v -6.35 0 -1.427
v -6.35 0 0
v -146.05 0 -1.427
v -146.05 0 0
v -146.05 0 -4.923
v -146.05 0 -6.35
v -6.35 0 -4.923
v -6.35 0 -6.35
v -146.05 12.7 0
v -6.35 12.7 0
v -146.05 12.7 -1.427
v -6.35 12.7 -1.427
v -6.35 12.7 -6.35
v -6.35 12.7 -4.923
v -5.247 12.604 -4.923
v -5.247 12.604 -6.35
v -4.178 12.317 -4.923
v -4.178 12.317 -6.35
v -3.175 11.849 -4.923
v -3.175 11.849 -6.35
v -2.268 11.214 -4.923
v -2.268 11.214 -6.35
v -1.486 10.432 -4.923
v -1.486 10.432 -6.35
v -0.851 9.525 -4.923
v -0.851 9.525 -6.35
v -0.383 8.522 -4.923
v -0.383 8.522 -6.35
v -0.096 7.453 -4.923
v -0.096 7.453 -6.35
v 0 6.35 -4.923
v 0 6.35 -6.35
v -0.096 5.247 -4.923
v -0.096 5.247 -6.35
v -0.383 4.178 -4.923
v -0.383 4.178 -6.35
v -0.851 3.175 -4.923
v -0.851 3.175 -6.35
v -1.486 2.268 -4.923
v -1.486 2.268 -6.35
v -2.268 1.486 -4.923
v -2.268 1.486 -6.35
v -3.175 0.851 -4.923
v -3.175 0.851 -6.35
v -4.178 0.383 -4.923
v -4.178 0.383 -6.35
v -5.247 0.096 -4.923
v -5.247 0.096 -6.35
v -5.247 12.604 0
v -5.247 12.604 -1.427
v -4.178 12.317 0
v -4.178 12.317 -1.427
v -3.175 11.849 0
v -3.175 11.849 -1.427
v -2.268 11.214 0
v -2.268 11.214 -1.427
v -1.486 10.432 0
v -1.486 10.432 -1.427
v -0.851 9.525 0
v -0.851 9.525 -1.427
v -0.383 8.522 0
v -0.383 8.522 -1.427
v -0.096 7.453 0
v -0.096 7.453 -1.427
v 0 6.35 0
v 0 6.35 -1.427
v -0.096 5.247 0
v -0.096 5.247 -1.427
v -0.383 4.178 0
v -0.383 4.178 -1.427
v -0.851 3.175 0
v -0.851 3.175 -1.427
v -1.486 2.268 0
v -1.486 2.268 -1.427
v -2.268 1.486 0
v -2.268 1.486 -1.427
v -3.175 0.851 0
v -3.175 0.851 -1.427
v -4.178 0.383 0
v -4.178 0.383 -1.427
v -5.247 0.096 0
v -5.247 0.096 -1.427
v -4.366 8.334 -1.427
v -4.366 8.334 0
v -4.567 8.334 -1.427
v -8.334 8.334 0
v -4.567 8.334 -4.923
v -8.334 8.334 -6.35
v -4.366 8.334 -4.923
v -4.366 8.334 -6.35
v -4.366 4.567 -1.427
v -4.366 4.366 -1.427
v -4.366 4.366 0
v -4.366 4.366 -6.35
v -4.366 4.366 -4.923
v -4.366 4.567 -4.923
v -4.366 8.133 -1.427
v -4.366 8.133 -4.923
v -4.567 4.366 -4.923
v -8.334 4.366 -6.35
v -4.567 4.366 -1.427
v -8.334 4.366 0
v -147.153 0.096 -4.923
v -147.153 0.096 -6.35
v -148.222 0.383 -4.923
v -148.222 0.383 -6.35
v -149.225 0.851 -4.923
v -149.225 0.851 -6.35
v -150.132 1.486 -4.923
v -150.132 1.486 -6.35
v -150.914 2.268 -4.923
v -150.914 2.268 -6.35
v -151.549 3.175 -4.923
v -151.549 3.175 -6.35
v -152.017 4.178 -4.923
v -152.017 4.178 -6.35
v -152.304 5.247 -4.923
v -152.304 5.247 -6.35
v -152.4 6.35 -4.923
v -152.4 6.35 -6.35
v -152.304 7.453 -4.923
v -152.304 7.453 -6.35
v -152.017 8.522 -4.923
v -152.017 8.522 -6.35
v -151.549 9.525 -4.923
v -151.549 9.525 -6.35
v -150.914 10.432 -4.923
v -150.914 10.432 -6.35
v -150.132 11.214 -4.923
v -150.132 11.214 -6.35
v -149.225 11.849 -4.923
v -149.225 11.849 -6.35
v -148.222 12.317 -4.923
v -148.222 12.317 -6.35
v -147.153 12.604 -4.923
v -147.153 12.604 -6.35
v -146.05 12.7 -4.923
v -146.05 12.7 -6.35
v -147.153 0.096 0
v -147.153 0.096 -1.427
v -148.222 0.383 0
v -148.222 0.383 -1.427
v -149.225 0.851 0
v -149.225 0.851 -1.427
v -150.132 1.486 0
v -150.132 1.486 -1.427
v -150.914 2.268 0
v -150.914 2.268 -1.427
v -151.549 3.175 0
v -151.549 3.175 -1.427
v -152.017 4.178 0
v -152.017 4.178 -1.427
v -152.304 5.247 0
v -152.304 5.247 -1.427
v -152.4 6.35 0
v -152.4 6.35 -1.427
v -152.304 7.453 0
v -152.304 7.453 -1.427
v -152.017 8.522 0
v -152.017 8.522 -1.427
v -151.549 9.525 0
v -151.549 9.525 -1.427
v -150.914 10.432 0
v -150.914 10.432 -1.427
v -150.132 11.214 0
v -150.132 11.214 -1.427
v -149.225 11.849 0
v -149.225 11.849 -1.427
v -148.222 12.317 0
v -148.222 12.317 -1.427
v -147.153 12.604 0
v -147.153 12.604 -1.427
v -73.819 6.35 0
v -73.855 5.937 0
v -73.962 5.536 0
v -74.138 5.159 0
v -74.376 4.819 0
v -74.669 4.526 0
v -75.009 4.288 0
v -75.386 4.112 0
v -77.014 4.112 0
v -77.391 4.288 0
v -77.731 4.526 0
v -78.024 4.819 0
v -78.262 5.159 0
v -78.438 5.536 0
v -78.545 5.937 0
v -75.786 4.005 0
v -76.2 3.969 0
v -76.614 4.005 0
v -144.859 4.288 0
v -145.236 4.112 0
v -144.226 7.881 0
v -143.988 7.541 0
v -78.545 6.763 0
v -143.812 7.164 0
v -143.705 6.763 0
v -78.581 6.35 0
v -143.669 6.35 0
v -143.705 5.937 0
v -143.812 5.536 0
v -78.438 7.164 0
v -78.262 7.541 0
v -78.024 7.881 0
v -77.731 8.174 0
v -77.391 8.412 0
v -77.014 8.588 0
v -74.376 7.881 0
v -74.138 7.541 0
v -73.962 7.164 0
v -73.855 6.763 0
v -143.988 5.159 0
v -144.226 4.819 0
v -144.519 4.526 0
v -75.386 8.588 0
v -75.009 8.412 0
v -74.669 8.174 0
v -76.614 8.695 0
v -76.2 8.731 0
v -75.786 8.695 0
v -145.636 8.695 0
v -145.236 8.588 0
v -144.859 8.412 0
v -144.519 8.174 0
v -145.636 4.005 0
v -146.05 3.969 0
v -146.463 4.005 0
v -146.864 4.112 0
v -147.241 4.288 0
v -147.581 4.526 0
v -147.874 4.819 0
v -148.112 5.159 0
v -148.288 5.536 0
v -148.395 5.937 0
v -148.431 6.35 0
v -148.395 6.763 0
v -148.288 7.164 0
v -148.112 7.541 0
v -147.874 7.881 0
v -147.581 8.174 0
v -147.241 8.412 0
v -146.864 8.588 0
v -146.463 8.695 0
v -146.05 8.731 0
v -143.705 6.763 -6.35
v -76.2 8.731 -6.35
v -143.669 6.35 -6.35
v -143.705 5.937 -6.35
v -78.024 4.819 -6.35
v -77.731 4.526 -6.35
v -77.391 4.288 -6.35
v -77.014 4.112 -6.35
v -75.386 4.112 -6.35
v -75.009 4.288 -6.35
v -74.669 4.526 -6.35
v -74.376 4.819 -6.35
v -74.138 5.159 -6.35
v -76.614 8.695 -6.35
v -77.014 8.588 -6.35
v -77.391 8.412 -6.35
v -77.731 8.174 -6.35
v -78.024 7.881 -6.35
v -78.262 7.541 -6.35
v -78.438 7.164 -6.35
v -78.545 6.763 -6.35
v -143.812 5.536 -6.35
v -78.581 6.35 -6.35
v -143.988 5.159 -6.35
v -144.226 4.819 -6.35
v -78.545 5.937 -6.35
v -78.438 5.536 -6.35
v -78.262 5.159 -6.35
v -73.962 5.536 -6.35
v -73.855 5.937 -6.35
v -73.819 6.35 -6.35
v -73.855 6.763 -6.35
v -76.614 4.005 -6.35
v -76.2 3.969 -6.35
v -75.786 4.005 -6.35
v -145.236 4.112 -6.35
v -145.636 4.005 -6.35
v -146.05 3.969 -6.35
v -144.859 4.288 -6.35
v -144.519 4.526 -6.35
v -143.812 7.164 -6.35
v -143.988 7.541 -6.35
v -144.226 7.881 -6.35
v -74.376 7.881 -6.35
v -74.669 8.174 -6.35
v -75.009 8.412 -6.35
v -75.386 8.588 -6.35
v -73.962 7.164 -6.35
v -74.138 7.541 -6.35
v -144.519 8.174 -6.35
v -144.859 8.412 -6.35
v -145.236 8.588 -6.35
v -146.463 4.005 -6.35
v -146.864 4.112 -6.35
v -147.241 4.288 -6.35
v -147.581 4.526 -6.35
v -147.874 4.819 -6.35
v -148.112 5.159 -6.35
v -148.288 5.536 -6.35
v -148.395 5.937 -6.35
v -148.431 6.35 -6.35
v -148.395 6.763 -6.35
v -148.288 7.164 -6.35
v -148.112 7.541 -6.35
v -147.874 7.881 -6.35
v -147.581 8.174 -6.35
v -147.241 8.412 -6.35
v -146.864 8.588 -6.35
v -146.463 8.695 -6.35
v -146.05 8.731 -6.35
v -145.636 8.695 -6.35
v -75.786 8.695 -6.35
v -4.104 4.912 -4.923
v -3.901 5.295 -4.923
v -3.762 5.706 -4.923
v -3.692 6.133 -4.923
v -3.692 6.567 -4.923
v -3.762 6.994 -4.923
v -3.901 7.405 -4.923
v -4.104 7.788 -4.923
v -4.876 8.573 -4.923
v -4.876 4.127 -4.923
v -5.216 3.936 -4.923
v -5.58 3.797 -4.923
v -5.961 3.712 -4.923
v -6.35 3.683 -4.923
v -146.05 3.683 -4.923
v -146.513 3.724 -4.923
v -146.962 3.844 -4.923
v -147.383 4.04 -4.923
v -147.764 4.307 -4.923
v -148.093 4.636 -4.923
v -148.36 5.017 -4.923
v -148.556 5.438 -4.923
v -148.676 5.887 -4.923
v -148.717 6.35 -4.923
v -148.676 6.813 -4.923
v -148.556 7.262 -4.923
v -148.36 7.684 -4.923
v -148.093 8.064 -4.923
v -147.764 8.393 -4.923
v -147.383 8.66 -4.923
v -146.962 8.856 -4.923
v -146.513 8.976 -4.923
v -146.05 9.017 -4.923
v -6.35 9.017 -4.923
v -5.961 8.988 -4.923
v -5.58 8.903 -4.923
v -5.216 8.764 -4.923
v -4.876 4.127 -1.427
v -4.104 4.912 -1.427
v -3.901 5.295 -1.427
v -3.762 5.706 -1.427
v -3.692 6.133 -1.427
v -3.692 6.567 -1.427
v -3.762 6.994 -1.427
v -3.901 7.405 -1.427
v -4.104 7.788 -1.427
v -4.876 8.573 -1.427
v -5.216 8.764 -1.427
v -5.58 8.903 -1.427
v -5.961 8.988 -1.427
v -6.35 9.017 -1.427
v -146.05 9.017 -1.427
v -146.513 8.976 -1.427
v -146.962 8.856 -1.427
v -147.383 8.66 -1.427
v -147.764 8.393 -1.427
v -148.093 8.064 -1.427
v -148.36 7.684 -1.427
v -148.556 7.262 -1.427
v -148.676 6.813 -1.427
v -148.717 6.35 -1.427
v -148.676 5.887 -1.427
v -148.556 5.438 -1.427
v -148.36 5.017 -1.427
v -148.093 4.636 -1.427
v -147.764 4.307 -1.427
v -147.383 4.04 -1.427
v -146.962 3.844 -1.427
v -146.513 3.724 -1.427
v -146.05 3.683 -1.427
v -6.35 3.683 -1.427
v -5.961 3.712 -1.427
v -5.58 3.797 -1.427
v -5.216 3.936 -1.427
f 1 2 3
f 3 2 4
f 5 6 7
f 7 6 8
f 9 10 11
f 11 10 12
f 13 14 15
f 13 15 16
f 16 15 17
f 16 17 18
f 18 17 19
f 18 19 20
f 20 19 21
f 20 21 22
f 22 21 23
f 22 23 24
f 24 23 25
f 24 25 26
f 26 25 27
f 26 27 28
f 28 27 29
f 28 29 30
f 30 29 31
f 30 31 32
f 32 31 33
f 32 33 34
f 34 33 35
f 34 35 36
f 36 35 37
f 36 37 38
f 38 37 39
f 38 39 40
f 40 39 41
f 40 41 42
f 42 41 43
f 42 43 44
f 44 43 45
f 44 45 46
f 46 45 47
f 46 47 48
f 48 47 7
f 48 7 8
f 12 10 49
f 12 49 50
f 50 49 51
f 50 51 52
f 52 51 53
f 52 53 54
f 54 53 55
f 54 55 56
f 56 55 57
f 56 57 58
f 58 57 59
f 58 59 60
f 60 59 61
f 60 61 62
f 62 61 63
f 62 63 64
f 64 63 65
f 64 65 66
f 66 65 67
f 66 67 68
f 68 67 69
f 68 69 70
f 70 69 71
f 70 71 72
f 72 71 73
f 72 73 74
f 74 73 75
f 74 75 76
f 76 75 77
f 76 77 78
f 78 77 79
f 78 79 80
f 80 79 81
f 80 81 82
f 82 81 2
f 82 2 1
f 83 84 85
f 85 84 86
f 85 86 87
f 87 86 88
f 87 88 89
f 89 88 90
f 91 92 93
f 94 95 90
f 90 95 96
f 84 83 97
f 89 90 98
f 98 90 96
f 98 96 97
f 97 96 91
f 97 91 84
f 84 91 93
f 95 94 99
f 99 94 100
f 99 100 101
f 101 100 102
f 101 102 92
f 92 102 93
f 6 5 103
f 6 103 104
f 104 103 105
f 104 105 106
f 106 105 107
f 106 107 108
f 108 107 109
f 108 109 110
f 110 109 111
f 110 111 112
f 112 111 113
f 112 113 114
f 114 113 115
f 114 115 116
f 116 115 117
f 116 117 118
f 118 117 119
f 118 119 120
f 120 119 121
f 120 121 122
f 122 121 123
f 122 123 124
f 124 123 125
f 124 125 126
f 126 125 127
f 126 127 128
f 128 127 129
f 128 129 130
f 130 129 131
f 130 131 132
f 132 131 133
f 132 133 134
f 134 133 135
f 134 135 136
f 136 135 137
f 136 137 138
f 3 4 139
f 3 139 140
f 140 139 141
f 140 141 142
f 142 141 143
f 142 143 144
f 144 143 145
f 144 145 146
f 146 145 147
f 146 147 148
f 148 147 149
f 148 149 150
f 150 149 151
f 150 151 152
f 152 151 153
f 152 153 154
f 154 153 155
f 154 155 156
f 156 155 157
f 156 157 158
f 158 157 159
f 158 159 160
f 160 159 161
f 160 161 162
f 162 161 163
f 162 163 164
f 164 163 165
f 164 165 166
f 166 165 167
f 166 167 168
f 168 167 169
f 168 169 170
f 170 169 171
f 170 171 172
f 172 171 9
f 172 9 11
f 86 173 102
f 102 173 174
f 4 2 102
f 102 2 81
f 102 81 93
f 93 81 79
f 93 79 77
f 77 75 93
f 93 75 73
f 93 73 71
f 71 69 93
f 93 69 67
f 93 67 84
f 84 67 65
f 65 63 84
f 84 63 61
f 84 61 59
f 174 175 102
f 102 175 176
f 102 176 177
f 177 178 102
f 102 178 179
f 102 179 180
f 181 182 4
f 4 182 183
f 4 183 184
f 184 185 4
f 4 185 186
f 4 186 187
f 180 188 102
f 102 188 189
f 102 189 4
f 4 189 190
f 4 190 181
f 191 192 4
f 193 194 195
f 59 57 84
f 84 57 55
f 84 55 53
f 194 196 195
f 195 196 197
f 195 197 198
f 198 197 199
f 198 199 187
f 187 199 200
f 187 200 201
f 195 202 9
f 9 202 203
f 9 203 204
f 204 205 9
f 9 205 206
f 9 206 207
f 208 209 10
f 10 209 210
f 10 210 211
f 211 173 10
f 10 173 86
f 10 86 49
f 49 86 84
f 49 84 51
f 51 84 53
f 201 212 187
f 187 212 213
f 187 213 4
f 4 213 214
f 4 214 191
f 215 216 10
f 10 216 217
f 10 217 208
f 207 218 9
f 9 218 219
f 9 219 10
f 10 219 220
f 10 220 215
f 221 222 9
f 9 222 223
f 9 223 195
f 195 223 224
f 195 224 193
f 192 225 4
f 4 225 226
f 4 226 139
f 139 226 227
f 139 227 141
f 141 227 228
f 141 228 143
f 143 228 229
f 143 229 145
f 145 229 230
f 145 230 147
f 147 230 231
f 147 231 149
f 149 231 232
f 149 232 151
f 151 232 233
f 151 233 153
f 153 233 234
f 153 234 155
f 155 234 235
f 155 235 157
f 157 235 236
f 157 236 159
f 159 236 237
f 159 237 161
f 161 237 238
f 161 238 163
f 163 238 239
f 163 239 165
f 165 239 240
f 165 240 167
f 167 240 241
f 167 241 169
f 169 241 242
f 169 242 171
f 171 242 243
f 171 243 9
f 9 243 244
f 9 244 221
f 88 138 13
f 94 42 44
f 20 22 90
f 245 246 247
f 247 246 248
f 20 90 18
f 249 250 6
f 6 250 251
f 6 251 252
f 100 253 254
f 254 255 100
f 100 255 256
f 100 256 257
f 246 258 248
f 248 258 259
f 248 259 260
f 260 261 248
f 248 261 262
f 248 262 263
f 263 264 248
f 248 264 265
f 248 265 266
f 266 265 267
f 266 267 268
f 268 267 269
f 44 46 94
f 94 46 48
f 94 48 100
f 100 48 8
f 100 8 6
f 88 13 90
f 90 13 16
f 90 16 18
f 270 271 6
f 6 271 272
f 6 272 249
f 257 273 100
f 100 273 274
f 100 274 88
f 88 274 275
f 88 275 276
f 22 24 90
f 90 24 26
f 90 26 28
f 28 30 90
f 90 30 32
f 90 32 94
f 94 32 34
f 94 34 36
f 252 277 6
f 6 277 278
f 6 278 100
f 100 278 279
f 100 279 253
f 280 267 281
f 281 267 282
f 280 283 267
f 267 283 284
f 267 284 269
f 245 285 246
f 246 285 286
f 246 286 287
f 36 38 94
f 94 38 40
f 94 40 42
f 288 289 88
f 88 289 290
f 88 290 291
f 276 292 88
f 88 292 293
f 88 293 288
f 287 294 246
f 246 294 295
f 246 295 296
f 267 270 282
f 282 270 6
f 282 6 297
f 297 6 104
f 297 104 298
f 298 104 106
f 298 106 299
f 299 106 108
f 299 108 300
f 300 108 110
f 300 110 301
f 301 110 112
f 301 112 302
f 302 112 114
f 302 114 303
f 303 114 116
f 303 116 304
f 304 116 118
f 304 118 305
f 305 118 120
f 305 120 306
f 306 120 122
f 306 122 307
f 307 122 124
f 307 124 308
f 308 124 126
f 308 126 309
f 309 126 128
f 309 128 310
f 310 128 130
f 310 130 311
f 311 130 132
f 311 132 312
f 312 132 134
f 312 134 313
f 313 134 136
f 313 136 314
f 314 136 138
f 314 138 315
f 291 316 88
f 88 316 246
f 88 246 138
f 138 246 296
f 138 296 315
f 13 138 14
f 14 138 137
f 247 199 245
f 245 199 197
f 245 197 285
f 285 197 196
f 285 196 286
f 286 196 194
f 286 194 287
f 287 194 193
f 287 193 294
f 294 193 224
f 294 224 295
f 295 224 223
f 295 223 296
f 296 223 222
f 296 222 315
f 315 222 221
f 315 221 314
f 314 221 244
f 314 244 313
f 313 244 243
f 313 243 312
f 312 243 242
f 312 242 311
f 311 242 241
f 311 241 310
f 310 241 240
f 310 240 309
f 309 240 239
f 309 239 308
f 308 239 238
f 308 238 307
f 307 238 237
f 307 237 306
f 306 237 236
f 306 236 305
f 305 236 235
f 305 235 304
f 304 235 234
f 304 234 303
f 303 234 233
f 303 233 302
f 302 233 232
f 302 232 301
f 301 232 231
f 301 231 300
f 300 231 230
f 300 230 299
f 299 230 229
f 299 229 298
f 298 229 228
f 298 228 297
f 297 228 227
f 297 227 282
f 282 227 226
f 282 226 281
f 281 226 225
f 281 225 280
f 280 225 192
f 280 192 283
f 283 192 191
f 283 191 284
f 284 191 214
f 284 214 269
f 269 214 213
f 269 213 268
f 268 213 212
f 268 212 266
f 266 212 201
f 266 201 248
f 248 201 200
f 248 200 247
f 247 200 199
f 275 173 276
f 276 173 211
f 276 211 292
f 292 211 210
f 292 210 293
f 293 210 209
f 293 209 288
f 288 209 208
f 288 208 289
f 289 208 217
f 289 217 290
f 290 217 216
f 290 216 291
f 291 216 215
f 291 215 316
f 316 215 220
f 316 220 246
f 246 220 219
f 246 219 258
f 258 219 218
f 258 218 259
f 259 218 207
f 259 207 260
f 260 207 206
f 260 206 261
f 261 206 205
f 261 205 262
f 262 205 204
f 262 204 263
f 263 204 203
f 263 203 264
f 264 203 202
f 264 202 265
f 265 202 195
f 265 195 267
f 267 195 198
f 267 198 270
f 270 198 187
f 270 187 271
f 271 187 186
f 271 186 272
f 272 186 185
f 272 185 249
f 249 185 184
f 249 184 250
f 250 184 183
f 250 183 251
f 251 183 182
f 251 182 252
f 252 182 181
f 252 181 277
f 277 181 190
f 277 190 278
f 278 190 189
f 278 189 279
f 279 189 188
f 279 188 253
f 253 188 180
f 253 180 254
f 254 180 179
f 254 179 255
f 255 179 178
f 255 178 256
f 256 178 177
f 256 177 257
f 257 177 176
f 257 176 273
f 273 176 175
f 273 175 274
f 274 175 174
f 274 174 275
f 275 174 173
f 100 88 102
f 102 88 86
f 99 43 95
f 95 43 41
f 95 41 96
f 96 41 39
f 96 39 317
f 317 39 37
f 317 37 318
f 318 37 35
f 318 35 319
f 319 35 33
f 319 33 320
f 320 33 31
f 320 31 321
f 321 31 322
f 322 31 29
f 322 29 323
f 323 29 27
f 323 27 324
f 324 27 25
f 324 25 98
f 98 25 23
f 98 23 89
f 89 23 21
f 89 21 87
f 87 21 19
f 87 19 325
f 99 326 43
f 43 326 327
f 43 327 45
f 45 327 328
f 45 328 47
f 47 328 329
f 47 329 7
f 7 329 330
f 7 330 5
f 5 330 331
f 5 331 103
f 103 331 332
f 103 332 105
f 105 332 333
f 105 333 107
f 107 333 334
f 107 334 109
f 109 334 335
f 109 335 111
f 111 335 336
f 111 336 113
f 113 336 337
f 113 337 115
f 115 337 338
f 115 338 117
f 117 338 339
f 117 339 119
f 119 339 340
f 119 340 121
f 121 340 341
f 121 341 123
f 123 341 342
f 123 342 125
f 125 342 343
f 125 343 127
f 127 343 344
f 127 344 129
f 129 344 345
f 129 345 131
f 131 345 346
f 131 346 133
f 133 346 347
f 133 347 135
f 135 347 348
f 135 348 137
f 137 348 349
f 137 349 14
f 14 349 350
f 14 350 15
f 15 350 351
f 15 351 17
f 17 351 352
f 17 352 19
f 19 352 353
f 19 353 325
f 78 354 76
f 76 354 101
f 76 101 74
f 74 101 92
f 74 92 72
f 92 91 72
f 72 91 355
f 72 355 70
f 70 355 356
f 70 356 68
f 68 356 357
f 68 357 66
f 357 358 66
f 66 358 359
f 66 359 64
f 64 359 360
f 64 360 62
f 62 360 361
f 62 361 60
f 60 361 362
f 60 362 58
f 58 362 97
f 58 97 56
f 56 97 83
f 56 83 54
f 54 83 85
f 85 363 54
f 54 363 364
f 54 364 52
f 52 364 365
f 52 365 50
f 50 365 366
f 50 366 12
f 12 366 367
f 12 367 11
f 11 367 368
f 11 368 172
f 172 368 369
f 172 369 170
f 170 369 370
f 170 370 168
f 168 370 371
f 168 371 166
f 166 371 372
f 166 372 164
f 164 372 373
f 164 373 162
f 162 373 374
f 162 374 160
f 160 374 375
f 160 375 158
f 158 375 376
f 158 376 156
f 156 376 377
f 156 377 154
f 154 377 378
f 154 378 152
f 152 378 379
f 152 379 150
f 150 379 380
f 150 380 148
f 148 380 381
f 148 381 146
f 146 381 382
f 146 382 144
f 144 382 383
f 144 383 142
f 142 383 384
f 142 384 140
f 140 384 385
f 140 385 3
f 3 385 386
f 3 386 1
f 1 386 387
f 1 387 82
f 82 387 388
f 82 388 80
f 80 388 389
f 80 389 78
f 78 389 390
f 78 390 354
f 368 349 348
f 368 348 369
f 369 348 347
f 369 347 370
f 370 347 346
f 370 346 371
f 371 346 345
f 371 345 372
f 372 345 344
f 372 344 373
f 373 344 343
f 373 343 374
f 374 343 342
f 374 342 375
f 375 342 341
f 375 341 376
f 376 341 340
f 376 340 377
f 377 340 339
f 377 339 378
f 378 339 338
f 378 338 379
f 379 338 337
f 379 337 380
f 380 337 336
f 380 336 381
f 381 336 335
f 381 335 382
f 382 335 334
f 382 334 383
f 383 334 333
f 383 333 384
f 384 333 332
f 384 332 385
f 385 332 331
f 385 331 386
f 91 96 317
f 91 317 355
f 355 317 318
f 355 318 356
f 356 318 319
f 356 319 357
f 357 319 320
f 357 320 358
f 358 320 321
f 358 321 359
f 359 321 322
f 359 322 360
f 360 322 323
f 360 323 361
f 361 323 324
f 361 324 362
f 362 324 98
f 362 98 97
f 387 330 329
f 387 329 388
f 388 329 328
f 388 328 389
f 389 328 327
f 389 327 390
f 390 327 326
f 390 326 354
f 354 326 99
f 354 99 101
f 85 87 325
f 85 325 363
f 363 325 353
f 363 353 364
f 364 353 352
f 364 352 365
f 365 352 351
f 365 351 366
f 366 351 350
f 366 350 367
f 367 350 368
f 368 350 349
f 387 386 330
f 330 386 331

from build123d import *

# Parameters (mm, degrees)
ESQUISSE1_W             = 152.4
ESQUISSE1_H             = 12.7
BOSS_EXTRU_1_DEPTH      = 6.35
ESQUISSE2_W             = 3.967596046
ESQUISSE2_H             = 3.967596046
ESQUISSE2_W_2           = 3.367596046
ESQUISSE2_H_2           = 3.367596046
ESQUISSE2_W_3           = 3.167596046
ESQUISSE2_H_3           = 3.167596046
ESQUISSE2_R             = 2.38125
ENL_V_MAT_EXTRU_1_DEPTH = 154.060029074
SKETCH1_W               = 14.17076538
SKETCH1_H               = 3.495000122
CUT_REVOLVE1_ANGLE      = 180
SKETCH2_W               = 3.495000122
SKETCH2_H               = 3.683
CUT_EXTRUDE1_DEPTH      = 154.060029074
ESQUISSE2_3_W           = 3.367596046
ESQUISSE2_3_H           = 3.367596046
ESQUISSE2_3_W_2         = 3.167596046
ESQUISSE2_3_H_2         = 3.167596046
CUT_EXTRUDE2_DEPTH      = 154.060029074


with BuildPart() as part:
    # Esquisse1 → Boss.-Extru.1 (new body)
    with BuildSketch(Plane.XY):
        with Locations((-76.2, 6.35)):
            Rectangle(ESQUISSE1_W, ESQUISSE1_H)
    extrude(amount=-BOSS_EXTRU_1_DEPTH)

    # Esquisse2 → Enlèv. mat.-Extru.1 (cut, through all)
    # profile 1 of 8: a face of its own
    with BuildSketch(Plane.XY):
        with BuildLine():
            Line((0, 0), (0, 6.35))
            ThreePointArc((0, 6.35), (-1.859871939, 1.859871939), (-6.35, 0))
            Line((-6.35, 0), (0, 0))
        make_face()
    # profile 2 of 8: a face of its own
    with BuildSketch(Plane.XY):
        with BuildLine():
            Line((0, 12.7), (-6.35, 12.7))
            ThreePointArc((-6.35, 12.7), (-1.859871939, 10.840128061), (0, 6.35))
            Line((0, 6.35), (0, 12.7))
        make_face()
    # profile 3 of 8: a face of its own
    with BuildSketch(Plane.XY):
        with BuildLine():
            ThreePointArc((-152.4, 6.35), (-150.540128061, 10.840128061), (-146.05, 12.7))
            Line((-146.05, 12.7), (-152.4, 12.7))
            Line((-152.4, 12.7), (-152.4, 6.35))
        make_face()
    # profile 4 of 8: a face of its own
    with BuildSketch(Plane.XY):
        with BuildLine():
            ThreePointArc((-146.05, 0), (-150.540128061, 1.859871939), (-152.4, 6.35))
            Line((-152.4, 6.35), (-152.4, 0))
            Line((-152.4, 0), (-146.05, 0))
        make_face()
    # profile 5 of 8: a face of its own
    with BuildSketch(Plane.XY):
        with Locations((-6.35, 6.35)):
            Rectangle(ESQUISSE2_W, ESQUISSE2_H)
        with Locations((-6.35, 6.35)):
            Rectangle(ESQUISSE2_W_2, ESQUISSE2_H_2, mode=Mode.SUBTRACT)
    # profile 6 of 8: a face of its own
    with BuildSketch(Plane.XY):
        with Locations((-6.35, 6.35)):
            Rectangle(ESQUISSE2_W_3, ESQUISSE2_H_3)
    # profile 7 of 8: a face of its own
    with BuildSketch(Plane.XY):
        with Locations((-146.05, 6.35)):
            Circle(ESQUISSE2_R)
    # profile 8 of 8: a face of its own
    with BuildSketch(Plane.XY):
        with Locations((-76.2, 6.35)):
            Circle(ESQUISSE2_R)
    extrude(amount=-ENL_V_MAT_EXTRU_1_DEPTH, mode=Mode.SUBTRACT)


with BuildPart() as enl_v_mat_extru_1_piece_1:
    # of the separate pieces the step leaves, piece 1, a body of its own (enl_v_mat_extru_1_pieces)
    add(part.part.solids().sort_by_distance((-6.35, 0, 0))[0])

    # Sketch1 → Cut-Revolve1 (revolve, symmetric, cut)
    with BuildSketch(Plane(origin=(0, 6.35, 0), x_dir=(1, 0, 0), z_dir=(0, 1, 0))) as cut_revolve1_sk:
        Polygon((-150.5585, 1.427499939), (-152.4, 1.427499939), (-152.4, 4.922500061), (-150.5585, 4.922500061), (-148.717, 4.922500061), (-148.717, 1.427499939), align=None)
        with Locations((-159.48538269, 3.175)):
            Rectangle(SKETCH1_W, SKETCH1_H)
    cut_revolve1 = revolve(axis=Axis((-146.05, 6.35, -6.35), (0, 0, 1)), revolution_arc=CUT_REVOLVE1_ANGLE / 2, mode=Mode.SUBTRACT)
    cut_revolve1 = cut_revolve1 + revolve(cut_revolve1_sk.sketch, axis=Axis((-146.05, 6.35, -6.35), (0, 0, -1)), revolution_arc=CUT_REVOLVE1_ANGLE / 2, mode=Mode.SUBTRACT)

    # Mirror1: Cut-Revolve1 across plane
    add(cut_revolve1.mirror(Plane(origin=(-76.2, 0, 0), x_dir=(0, 0, 1), z_dir=(1, 0, 0))), mode=Mode.SUBTRACT)

    # Sketch2 → Cut-Extrude1 (cut, through all)
    with BuildSketch(Plane(origin=(0, 0, 0), x_dir=(0, 0, -1), z_dir=(1, 0, 0))):
        with Locations((3.175, 10.8585)):
            Rectangle(SKETCH2_W, SKETCH2_H)
    cut_extrude1 = extrude(amount=-CUT_EXTRUDE1_DEPTH, mode=Mode.SUBTRACT)

    # Mirror2: Cut-Extrude1 across plane
    add(cut_extrude1.mirror(Plane.ZX.offset(6.35)), mode=Mode.SUBTRACT)


with BuildPart() as enl_v_mat_extru_1_piece_2:
    # of the separate pieces the step leaves, piece 2, a body of its own (enl_v_mat_extru_1_pieces)
    add(part.part.solids().sort_by_distance((-8.033798023, 4.666201977, 0))[0])

    # Esquisse2<3> → Cut-Extrude2 (cut, through all)
    with BuildSketch(Plane.XY):
        with Locations((-6.35, 6.35)):
            Rectangle(ESQUISSE2_3_W, ESQUISSE2_3_H)
        with Locations((-6.35, 6.35)):
            Rectangle(ESQUISSE2_3_W_2, ESQUISSE2_3_H_2, mode=Mode.SUBTRACT)
    extrude(amount=-CUT_EXTRUDE2_DEPTH, mode=Mode.SUBTRACT)


solid = enl_v_mat_extru_1_piece_1.part
